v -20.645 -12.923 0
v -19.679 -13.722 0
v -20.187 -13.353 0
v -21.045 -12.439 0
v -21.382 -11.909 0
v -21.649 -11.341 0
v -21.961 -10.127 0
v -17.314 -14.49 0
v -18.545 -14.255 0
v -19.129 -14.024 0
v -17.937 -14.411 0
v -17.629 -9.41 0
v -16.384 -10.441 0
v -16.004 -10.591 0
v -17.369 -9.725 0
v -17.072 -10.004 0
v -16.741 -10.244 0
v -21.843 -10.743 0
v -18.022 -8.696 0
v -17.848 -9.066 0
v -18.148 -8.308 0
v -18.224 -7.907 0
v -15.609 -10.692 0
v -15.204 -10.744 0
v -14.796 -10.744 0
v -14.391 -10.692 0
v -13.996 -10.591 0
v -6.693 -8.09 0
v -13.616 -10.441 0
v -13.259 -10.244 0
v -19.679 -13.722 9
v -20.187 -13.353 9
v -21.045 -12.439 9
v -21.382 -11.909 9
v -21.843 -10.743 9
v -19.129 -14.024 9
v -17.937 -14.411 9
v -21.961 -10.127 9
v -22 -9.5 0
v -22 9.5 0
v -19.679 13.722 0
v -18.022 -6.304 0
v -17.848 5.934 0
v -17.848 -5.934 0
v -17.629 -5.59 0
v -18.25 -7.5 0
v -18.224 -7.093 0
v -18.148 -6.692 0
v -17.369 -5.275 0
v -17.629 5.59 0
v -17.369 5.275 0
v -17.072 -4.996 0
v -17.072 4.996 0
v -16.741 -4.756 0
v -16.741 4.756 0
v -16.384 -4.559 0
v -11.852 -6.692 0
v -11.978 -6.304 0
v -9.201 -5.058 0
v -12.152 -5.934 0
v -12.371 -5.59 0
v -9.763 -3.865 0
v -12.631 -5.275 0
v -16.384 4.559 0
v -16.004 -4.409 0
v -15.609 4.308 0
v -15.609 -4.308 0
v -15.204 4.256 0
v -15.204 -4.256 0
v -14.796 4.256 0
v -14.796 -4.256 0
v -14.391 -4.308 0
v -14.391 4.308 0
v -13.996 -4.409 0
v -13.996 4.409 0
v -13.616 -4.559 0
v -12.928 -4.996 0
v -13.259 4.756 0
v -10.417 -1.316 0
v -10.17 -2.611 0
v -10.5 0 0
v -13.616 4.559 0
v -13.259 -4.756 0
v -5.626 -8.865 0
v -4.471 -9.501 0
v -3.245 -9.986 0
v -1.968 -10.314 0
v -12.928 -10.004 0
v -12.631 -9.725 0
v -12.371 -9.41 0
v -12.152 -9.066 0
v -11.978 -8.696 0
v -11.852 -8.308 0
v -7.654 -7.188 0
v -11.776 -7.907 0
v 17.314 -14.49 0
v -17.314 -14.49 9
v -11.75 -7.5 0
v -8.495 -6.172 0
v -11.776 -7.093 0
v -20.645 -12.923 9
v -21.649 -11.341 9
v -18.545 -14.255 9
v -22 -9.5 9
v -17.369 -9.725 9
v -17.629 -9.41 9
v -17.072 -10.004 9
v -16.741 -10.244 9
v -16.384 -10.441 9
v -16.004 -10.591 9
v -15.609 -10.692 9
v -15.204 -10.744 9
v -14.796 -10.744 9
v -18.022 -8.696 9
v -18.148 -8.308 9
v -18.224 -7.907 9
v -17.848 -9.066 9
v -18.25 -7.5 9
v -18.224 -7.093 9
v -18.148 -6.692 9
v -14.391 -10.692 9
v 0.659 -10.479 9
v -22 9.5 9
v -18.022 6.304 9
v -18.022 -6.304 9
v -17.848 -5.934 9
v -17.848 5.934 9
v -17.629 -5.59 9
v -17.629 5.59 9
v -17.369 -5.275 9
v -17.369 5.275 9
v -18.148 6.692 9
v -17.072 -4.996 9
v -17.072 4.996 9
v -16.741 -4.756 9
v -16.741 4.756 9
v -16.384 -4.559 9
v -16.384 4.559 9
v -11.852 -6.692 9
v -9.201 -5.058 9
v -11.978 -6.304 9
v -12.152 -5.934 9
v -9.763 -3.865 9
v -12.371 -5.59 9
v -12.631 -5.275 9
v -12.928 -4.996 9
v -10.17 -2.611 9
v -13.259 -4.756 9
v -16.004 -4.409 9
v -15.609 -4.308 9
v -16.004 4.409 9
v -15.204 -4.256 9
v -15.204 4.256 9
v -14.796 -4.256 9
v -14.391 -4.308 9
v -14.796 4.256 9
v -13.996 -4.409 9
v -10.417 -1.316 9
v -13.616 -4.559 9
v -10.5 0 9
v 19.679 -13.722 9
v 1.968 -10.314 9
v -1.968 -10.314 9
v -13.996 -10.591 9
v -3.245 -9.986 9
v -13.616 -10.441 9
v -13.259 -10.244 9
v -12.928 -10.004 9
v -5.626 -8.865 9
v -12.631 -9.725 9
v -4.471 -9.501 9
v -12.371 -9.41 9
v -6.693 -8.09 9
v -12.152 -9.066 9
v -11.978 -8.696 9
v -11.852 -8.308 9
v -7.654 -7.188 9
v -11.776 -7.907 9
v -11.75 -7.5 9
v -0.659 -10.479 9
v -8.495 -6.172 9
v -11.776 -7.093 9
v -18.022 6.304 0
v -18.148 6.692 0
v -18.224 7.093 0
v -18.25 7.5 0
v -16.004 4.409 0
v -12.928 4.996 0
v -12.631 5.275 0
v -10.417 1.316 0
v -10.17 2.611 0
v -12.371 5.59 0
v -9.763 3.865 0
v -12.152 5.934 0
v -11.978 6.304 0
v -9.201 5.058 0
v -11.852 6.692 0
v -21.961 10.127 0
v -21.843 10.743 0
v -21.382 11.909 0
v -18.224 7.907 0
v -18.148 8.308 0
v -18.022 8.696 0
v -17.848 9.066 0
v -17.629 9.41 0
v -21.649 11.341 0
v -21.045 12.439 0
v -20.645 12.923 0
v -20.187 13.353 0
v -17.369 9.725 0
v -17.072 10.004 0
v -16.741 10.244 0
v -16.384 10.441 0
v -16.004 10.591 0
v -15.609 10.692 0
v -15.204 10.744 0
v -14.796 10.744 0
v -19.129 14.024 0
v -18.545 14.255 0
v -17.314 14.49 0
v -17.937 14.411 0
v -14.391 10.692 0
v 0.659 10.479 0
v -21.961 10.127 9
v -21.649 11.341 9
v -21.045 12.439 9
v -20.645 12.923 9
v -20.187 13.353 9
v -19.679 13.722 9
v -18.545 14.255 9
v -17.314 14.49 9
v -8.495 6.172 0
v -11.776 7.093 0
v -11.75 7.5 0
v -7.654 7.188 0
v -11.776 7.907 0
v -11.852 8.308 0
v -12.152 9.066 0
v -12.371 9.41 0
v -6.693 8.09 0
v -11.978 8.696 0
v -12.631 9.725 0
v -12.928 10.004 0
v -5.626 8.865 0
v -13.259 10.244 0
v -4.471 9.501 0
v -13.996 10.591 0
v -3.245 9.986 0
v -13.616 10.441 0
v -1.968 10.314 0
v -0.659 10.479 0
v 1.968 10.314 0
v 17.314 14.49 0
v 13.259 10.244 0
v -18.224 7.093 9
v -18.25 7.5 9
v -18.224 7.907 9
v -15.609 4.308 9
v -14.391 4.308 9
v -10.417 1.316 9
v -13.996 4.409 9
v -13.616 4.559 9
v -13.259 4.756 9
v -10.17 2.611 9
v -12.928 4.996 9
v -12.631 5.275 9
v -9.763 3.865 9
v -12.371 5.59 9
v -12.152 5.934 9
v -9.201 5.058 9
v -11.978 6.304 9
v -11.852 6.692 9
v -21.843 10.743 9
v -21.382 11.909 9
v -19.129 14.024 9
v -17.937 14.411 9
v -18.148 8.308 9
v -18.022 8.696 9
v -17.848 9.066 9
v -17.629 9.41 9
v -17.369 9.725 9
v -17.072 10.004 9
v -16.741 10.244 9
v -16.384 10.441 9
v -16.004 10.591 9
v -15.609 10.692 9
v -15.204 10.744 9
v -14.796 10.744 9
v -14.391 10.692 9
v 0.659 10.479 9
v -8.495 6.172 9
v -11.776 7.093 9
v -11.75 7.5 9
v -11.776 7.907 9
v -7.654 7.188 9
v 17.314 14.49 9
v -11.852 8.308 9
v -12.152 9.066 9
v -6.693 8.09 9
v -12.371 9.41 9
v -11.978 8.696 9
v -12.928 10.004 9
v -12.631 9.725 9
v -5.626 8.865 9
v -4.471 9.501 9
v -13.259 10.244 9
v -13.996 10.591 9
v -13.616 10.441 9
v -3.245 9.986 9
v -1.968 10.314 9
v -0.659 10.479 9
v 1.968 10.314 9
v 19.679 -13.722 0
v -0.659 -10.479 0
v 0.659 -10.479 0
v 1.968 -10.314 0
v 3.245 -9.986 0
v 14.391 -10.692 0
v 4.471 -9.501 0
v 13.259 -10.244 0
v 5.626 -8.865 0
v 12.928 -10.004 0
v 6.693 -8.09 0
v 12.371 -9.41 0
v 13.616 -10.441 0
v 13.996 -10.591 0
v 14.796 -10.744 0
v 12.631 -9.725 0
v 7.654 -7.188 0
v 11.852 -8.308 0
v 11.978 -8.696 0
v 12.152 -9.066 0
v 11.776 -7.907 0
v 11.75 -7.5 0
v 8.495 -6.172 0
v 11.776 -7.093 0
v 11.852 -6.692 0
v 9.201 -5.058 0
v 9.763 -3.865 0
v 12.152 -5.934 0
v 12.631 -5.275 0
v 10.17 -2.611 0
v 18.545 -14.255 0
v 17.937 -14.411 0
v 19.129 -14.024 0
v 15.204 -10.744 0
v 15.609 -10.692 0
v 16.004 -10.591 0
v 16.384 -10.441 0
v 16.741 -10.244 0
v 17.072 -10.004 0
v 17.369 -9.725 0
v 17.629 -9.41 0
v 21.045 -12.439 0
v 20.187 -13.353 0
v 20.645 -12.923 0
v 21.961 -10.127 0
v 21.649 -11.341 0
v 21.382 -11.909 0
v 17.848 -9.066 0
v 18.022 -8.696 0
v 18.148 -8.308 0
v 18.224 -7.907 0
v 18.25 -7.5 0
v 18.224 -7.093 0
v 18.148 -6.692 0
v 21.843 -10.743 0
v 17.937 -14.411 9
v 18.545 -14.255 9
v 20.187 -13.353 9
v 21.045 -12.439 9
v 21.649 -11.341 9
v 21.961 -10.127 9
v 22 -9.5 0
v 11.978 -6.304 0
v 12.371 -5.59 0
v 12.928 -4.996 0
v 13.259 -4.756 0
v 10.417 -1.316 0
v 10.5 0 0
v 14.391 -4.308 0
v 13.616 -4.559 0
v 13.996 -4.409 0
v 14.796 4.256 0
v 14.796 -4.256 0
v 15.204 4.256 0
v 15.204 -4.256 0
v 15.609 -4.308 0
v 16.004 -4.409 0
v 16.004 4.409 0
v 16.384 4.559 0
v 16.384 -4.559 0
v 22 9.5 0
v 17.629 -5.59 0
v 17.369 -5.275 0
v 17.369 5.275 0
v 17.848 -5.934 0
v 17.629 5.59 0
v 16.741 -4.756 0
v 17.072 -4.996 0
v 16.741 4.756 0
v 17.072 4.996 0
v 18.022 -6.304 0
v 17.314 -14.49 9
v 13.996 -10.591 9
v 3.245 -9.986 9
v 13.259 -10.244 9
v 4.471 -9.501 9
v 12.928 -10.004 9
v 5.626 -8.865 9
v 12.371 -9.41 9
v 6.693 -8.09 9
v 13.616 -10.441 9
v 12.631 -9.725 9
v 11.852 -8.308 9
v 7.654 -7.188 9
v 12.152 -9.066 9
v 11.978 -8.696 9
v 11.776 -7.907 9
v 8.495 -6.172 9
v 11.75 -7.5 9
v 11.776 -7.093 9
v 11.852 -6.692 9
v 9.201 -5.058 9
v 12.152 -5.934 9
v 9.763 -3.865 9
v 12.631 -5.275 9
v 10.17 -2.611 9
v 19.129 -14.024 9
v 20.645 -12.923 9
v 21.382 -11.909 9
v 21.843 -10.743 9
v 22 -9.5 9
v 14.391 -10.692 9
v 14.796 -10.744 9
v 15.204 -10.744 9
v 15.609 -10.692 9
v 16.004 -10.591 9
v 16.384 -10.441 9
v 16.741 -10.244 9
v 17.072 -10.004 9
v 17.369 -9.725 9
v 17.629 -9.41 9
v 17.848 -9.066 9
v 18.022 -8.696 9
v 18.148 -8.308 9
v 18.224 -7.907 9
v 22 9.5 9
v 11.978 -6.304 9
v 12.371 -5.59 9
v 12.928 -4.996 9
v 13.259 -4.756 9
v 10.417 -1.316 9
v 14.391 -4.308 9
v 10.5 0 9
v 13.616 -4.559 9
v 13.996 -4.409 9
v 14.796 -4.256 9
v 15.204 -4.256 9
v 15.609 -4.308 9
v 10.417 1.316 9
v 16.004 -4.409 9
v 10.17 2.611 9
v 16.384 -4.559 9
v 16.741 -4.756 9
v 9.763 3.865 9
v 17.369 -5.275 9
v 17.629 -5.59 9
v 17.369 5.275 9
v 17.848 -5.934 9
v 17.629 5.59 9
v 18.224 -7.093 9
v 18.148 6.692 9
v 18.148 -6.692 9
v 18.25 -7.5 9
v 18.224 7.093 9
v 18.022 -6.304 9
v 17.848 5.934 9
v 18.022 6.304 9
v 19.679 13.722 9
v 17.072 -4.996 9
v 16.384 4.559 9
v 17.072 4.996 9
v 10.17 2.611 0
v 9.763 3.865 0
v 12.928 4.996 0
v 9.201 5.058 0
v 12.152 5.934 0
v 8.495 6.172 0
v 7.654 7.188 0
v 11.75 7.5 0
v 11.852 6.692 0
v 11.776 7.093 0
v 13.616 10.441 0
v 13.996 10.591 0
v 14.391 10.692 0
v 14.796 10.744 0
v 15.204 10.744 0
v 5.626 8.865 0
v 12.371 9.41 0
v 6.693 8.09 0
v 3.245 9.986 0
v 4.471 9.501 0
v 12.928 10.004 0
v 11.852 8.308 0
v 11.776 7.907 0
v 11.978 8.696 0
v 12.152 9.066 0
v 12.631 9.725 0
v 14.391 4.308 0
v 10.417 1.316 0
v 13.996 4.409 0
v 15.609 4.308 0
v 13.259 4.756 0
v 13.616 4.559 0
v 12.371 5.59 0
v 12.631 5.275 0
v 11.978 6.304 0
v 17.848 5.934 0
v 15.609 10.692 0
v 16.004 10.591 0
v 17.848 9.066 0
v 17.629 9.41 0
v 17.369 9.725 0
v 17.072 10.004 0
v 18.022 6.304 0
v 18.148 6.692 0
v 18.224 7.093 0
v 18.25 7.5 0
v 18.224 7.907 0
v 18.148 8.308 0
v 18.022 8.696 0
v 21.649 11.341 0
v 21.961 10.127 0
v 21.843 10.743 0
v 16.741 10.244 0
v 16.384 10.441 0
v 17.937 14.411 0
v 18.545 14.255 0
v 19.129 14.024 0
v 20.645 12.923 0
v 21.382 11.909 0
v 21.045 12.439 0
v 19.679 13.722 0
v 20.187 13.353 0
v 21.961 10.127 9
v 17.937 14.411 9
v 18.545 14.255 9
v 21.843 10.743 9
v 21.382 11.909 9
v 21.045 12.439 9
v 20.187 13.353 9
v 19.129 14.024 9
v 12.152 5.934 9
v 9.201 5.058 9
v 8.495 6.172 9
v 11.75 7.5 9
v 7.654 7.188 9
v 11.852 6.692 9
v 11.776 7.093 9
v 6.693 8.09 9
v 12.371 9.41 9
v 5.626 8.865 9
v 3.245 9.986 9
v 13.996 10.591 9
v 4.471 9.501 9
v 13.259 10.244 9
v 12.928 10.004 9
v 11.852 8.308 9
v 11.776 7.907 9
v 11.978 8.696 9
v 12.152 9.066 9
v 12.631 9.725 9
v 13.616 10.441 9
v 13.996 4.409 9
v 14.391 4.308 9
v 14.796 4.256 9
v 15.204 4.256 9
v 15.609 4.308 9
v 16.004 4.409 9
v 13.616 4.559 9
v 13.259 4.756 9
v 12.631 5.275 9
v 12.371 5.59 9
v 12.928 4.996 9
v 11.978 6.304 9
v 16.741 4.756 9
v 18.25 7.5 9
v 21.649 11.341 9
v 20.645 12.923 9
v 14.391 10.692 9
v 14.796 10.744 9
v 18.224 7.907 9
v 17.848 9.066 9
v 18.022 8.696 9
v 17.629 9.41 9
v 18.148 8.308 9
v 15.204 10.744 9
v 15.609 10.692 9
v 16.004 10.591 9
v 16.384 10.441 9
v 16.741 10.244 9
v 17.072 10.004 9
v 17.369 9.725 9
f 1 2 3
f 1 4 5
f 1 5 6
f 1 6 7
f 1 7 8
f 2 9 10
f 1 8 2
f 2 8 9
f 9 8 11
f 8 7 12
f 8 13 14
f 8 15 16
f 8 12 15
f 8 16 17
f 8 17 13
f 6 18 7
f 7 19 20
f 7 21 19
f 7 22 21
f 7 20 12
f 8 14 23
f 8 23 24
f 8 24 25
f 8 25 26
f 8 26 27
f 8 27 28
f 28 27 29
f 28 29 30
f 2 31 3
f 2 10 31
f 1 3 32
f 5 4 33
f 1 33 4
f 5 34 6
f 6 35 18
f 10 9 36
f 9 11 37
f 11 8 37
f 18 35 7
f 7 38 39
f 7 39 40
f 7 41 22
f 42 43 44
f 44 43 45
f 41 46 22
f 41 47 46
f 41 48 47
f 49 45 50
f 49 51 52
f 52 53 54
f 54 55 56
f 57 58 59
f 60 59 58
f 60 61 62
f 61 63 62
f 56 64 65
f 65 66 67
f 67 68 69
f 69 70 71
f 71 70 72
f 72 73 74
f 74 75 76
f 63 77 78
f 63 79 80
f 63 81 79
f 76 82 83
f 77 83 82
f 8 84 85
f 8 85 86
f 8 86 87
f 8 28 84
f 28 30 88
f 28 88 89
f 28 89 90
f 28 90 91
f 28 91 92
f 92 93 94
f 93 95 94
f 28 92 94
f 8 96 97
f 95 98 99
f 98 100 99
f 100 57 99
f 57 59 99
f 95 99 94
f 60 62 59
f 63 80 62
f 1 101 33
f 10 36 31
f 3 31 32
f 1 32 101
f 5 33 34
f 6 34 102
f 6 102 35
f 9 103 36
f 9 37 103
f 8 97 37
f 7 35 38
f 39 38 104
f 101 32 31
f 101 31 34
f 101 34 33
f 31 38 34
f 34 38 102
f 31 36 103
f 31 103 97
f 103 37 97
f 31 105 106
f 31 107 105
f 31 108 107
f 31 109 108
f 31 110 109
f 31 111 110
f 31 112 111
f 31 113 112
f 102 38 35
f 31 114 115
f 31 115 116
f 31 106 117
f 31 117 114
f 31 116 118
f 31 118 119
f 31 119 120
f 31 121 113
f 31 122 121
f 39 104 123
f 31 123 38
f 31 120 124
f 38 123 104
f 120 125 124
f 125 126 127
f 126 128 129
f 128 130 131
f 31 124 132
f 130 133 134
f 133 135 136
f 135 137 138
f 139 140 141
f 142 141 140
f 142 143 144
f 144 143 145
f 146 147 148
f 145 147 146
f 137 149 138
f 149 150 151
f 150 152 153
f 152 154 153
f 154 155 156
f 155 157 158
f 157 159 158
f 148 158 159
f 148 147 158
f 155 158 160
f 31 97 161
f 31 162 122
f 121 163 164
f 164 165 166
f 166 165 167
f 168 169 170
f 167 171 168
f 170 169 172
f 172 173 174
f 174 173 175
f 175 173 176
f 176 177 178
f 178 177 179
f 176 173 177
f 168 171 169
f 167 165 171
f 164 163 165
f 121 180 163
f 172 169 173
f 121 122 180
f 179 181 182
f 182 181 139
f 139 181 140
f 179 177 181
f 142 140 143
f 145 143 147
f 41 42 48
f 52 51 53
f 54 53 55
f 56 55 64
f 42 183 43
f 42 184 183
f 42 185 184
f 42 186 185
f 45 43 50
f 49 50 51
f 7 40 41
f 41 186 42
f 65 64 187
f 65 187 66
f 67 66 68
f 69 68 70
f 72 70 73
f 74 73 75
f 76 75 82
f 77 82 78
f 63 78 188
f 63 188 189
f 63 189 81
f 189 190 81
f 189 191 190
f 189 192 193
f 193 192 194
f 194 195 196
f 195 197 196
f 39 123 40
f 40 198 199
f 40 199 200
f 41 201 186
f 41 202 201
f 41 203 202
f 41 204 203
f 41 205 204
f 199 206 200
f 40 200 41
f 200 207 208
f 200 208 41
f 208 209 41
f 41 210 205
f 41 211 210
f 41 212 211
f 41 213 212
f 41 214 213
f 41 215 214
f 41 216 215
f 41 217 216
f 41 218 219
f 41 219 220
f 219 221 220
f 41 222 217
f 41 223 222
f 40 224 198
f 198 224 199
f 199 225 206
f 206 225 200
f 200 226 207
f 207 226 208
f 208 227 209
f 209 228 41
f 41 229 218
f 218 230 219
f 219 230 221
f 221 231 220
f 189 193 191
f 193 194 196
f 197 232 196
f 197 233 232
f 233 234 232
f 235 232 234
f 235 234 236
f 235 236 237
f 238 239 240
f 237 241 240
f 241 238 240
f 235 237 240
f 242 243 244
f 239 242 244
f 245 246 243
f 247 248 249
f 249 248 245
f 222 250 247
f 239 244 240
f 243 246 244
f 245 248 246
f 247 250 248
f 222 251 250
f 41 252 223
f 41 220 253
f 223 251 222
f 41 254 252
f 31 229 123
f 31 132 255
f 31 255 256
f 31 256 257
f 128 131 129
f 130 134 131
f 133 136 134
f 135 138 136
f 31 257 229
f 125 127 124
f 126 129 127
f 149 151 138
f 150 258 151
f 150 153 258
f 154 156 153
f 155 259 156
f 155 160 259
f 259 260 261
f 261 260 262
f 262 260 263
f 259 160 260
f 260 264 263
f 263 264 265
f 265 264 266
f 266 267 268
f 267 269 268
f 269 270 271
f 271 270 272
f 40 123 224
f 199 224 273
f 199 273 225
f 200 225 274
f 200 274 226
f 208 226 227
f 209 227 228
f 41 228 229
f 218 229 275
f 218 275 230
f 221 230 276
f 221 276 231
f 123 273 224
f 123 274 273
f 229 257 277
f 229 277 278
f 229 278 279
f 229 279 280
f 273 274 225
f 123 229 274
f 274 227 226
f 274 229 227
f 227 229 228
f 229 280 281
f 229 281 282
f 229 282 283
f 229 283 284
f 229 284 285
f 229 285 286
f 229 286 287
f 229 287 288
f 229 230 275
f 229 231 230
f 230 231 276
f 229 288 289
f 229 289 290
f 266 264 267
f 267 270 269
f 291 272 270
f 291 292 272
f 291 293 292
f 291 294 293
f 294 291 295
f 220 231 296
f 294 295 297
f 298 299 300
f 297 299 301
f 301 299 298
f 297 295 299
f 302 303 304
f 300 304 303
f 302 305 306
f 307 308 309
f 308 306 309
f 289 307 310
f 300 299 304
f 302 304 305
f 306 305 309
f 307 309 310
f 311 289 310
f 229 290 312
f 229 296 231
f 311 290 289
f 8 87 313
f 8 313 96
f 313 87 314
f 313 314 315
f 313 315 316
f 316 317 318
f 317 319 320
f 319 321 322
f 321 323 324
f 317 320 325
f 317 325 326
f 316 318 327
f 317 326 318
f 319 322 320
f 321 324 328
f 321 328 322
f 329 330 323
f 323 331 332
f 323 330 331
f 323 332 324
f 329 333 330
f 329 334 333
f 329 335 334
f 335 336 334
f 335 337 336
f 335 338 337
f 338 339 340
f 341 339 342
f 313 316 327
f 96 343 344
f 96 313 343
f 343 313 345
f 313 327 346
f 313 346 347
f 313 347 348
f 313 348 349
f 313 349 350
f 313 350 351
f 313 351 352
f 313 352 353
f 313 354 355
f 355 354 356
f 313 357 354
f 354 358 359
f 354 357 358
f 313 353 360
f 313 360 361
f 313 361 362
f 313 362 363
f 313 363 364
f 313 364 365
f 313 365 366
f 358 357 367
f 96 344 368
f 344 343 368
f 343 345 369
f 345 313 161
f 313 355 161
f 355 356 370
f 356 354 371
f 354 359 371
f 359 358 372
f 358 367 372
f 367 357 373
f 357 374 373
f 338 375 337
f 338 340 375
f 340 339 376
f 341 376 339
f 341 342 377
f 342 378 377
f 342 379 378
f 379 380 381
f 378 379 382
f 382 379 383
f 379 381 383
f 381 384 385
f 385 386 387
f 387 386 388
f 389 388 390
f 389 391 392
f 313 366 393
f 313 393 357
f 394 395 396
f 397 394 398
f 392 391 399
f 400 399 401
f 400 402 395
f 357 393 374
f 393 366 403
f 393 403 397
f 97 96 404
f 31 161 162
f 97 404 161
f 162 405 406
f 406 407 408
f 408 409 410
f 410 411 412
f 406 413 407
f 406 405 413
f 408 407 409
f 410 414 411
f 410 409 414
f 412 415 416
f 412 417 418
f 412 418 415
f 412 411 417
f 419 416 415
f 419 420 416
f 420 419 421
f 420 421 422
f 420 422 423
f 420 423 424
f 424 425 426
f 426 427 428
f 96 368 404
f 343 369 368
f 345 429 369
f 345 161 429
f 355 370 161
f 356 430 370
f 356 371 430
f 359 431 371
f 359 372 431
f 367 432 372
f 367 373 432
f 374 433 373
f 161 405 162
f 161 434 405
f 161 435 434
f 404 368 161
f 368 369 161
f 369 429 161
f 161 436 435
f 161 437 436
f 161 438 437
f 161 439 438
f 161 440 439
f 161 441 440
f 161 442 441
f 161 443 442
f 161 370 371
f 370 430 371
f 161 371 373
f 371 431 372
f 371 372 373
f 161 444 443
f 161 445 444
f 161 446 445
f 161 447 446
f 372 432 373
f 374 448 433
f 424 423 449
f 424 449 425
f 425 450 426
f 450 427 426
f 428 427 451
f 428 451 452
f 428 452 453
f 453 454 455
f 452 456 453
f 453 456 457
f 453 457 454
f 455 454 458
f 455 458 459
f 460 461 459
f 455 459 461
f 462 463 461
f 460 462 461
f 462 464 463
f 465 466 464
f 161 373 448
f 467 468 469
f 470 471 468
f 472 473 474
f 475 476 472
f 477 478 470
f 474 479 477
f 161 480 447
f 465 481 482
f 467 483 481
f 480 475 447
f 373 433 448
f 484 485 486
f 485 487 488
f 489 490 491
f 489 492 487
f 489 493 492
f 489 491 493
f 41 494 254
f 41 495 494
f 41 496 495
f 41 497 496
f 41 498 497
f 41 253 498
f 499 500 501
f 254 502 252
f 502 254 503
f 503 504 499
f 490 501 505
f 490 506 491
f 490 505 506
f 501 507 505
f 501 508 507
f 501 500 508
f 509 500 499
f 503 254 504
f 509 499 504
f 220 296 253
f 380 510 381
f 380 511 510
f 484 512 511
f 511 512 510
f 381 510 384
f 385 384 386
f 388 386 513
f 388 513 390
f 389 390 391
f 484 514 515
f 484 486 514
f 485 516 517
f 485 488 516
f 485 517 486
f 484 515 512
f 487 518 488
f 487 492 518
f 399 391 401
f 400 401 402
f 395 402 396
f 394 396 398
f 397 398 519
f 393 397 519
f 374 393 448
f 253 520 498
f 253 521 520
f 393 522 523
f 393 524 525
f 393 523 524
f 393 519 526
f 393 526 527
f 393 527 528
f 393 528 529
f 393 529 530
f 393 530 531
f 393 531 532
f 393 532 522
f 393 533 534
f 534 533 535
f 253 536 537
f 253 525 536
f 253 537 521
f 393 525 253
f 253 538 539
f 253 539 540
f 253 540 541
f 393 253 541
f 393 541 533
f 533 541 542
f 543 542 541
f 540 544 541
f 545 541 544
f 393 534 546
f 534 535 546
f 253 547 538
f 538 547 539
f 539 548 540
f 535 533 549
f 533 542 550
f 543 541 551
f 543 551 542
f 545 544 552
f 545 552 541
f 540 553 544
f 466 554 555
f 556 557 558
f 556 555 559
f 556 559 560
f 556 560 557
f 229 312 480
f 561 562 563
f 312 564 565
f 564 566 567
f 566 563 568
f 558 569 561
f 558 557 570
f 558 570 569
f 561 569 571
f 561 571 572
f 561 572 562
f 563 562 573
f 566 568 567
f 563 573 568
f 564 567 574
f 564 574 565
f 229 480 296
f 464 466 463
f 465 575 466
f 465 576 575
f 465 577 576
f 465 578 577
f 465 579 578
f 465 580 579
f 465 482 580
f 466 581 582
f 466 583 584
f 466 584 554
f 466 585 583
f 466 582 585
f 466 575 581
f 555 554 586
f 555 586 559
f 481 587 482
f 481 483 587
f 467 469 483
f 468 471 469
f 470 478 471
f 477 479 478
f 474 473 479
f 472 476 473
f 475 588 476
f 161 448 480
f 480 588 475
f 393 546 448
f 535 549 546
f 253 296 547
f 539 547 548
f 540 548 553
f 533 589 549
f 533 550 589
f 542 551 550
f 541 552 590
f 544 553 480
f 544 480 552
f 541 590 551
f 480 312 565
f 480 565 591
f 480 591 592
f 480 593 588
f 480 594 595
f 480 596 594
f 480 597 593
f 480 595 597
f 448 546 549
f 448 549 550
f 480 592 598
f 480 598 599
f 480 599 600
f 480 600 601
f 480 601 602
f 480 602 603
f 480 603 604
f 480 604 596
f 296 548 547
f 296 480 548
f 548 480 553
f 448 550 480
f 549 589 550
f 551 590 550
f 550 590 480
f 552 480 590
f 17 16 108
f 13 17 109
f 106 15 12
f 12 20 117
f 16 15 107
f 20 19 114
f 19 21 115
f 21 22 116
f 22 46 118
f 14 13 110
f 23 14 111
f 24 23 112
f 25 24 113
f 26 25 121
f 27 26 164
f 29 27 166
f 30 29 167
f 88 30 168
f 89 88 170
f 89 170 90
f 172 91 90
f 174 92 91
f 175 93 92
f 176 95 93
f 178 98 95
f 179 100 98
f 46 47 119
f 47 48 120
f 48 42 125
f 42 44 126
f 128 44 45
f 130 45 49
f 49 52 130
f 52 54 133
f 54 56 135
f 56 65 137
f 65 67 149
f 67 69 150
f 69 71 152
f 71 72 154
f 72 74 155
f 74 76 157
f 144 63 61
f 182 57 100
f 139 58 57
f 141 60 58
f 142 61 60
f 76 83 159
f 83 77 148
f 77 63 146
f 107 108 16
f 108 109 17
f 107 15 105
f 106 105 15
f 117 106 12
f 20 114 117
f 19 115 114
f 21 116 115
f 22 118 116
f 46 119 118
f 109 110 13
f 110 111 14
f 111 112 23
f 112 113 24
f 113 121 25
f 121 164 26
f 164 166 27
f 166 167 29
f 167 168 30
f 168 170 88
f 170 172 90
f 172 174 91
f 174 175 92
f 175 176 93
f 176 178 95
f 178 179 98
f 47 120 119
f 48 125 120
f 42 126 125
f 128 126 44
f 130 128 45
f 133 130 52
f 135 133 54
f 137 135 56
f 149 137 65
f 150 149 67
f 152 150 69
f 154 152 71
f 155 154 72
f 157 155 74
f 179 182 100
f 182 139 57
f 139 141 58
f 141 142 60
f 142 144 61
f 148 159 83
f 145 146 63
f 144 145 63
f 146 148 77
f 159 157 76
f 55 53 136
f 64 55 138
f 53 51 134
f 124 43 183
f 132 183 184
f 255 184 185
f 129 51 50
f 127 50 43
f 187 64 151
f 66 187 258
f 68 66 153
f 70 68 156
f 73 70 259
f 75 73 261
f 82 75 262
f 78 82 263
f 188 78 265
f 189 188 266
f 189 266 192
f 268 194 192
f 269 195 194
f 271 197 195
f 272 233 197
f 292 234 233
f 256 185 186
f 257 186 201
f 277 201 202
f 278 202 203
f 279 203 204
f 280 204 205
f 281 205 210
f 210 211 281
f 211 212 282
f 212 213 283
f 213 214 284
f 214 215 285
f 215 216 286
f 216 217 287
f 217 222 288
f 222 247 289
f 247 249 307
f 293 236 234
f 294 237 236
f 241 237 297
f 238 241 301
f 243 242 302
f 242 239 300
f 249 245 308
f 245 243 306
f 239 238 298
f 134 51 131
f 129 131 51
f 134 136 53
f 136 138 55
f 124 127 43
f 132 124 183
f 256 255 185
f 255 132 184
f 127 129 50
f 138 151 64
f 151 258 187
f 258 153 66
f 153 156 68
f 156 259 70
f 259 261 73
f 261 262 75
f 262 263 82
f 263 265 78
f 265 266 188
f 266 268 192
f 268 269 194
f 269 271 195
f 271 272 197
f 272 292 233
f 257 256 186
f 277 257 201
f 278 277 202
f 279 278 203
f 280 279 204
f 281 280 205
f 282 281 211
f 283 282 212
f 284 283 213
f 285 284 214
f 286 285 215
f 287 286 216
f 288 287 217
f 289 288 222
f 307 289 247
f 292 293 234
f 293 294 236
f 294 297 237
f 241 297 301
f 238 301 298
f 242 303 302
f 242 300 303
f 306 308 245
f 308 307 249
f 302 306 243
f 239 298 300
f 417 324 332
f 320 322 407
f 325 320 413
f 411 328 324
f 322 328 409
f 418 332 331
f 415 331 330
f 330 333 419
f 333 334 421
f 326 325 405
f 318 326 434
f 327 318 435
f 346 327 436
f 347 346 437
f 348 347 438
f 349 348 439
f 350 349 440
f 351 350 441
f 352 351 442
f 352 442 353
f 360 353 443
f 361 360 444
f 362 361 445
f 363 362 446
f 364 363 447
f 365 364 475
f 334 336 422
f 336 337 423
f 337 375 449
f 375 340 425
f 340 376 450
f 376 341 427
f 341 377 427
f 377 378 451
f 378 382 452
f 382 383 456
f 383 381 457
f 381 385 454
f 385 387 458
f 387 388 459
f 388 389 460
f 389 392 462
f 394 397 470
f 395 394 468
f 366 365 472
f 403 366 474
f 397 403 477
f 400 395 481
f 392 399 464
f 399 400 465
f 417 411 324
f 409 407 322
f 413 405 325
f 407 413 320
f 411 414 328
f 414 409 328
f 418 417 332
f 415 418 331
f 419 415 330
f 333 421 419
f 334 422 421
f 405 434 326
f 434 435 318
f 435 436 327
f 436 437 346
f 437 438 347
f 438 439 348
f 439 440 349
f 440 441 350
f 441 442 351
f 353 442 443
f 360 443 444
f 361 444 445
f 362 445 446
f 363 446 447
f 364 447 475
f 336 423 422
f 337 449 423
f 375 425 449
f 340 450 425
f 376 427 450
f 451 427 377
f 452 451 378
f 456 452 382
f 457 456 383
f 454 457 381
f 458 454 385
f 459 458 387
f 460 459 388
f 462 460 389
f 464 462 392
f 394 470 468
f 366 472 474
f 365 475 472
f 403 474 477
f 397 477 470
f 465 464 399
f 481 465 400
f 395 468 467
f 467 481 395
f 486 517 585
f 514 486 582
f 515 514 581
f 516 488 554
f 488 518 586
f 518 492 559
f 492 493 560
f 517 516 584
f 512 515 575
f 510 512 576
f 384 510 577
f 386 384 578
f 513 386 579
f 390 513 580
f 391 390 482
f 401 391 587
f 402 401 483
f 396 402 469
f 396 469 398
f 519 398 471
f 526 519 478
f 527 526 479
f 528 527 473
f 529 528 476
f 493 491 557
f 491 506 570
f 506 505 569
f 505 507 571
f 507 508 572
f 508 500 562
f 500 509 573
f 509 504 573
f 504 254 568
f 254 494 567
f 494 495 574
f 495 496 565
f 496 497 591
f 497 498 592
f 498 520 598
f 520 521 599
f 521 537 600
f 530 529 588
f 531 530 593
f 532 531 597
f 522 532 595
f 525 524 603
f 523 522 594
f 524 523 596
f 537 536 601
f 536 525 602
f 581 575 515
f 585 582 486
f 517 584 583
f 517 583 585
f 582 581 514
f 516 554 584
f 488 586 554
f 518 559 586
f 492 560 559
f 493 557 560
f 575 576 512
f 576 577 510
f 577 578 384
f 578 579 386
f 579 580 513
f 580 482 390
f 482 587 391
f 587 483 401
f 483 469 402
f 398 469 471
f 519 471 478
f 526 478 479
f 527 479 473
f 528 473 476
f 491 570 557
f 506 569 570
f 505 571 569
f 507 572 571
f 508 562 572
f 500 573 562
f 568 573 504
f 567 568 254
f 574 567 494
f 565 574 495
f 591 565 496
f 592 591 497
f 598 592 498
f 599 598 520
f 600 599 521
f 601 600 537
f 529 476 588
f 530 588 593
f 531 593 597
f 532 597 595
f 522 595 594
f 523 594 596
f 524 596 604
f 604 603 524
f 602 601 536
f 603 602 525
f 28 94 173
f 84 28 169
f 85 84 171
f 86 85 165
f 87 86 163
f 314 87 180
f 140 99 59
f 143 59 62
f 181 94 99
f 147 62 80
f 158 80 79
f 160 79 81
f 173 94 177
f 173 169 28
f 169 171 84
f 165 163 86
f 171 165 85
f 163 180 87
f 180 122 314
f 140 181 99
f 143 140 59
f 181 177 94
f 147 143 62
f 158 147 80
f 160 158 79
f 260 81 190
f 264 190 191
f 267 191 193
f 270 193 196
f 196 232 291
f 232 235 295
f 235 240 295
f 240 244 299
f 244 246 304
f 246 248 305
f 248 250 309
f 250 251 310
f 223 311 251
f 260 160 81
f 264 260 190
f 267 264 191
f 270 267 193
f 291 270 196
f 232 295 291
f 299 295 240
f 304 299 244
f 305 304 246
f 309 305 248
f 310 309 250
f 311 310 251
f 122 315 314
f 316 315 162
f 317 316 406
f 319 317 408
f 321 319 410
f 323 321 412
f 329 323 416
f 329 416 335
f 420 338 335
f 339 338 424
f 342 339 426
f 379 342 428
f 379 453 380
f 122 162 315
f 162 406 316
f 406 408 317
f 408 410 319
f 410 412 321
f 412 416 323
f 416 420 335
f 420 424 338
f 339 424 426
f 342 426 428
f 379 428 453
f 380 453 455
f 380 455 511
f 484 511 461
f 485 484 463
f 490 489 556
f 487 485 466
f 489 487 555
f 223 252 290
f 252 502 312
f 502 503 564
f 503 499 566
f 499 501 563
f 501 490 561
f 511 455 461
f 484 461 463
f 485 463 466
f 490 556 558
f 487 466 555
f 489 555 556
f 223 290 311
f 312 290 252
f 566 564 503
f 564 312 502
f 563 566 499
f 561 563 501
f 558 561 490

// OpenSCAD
$fn = 50;

difference() {
	union() {
		hull() {
			translate(v = [-17.0, 9.5, 0]) {
				cylinder(h = 9, r = 5);
			}
			translate(v = [17.0, 9.5, 0]) {
				cylinder(h = 9, r = 5);
			}
			translate(v = [-17.0, -9.5, 0]) {
				cylinder(h = 9, r = 5);
			}
			translate(v = [17.0, -9.5, 0]) {
				cylinder(h = 9, r = 5);
			}
		}
	}
	union() {
		translate(v = [-15.0, -7.5, 0]) {
			cylinder(h = 9, r = 3.25);
		}
		translate(v = [-15.0, 7.5, 0]) {
			cylinder(h = 9, r = 3.25);
		}
		translate(v = [15.0, -7.5, 0]) {
			cylinder(h = 9, r = 3.25);
		}
		translate(v = [15.0, 7.5, 0]) {
			cylinder(h = 9, r = 3.25);
		}
		cylinder(h = 9, r = 10.5);
	}
}
